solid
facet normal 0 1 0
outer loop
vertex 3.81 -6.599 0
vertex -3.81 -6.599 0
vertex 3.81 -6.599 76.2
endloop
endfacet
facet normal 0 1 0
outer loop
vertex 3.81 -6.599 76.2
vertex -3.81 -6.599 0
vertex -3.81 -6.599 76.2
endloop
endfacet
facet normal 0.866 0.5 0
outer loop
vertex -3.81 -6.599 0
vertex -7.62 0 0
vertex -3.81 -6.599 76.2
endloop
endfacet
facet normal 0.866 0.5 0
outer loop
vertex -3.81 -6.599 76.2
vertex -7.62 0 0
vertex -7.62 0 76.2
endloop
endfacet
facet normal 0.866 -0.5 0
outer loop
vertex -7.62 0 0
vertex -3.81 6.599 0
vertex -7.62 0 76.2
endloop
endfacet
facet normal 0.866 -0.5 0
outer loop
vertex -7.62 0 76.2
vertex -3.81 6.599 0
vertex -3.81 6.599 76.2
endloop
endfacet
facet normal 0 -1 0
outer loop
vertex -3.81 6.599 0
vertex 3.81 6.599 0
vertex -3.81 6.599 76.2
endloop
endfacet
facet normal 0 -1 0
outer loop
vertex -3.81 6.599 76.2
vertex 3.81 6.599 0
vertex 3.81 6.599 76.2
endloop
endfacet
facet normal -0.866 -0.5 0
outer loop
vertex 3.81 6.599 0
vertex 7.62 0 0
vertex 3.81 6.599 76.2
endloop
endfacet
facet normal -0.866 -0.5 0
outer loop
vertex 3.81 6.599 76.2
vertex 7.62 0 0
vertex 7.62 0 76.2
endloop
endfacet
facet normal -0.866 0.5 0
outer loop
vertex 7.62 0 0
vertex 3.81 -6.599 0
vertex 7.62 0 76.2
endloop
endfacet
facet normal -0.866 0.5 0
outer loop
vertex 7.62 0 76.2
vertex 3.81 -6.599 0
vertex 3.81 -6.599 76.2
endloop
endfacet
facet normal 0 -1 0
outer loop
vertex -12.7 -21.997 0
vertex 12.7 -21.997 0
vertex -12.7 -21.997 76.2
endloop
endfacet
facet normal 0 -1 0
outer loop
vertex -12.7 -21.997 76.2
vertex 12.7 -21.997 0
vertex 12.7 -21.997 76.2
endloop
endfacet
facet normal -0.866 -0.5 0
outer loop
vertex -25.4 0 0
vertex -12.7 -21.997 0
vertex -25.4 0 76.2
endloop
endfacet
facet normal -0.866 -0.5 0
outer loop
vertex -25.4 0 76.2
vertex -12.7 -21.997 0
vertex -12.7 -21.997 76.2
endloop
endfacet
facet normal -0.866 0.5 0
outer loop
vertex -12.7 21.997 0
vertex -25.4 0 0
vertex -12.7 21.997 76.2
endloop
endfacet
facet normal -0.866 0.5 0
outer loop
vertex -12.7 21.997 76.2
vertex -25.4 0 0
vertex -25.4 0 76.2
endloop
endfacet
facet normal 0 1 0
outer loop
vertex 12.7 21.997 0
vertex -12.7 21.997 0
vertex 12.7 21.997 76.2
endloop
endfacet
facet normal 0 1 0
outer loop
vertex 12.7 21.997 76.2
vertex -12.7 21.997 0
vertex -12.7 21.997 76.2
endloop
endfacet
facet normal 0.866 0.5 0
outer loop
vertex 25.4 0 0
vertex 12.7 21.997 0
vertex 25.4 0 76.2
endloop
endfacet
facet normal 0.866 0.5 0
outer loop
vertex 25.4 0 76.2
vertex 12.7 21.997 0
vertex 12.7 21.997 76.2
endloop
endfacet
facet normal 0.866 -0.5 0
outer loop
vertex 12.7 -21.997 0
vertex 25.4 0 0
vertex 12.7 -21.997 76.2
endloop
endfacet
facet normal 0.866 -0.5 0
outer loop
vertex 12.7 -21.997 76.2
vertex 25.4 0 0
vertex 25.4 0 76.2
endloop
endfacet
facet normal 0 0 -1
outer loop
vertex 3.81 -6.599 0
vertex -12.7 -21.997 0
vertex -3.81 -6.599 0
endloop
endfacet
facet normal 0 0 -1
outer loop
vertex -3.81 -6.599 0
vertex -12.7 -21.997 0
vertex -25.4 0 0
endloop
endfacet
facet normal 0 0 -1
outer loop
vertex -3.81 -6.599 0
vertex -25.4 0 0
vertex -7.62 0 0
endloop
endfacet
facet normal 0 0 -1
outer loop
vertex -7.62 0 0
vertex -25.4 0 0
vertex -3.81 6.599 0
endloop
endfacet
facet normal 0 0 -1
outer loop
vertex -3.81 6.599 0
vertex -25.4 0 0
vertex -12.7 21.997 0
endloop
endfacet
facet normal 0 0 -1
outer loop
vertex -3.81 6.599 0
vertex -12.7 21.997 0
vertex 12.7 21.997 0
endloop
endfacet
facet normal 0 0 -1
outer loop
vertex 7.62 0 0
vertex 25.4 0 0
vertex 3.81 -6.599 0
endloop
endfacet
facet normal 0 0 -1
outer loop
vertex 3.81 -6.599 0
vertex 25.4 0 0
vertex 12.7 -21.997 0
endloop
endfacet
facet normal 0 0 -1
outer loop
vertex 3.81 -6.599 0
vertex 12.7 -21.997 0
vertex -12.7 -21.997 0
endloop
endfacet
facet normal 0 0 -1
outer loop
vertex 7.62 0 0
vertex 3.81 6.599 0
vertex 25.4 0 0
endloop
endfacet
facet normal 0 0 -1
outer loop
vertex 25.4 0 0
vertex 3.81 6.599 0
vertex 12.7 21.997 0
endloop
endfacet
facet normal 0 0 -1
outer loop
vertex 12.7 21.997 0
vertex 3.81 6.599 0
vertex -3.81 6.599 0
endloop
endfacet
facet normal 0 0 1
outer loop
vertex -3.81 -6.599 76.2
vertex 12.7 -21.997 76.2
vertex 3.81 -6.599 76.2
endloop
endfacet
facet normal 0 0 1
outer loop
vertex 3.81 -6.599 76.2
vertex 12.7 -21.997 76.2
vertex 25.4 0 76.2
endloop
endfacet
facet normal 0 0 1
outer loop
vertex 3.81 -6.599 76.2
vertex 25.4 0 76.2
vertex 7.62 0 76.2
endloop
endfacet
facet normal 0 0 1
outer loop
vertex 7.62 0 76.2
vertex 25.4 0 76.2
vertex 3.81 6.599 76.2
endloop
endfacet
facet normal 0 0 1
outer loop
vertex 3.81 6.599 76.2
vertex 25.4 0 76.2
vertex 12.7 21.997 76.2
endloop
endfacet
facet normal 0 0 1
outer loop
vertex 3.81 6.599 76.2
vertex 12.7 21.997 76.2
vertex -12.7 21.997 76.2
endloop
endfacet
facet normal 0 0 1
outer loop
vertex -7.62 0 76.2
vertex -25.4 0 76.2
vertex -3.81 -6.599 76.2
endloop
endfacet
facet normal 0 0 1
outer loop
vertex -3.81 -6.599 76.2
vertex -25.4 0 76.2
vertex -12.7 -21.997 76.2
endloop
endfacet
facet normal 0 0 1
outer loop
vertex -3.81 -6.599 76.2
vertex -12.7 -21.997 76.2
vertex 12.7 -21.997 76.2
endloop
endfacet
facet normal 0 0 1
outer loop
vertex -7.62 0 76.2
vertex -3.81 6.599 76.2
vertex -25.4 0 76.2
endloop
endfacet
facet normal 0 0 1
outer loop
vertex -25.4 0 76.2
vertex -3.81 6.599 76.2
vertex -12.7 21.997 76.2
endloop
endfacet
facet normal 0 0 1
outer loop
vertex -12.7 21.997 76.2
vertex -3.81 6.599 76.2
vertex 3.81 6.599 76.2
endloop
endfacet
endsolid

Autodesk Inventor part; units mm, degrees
ref_plane "YZ Plane" through (0, 0, 0) normal (1, 0, 0) x (0, 1, 0)
ref_plane "XZ Plane" through (0, 0, 0) normal (0, 1, 0) x (-1, 0, 0)
ref_plane "XY Plane" through (0, 0, 0) normal (0, 0, 1) x (1, 0, 0)
sketch "Sketch2" plane through (0, 0, 0) normal (0, 0, 1) x (1, 0, 0)
  line L0 (7.62, 0) -> (3.81, -6.5991)
  line L1 (3.81, -6.5991) -> (-3.81, -6.5991)
  line L2 (-3.81, -6.5991) -> (-7.62, 0)
  line L3 (-7.62, 0) -> (-3.81, 6.5991)
  line L4 (-3.81, 6.5991) -> (3.81, 6.5991)
  line L5 (3.81, 6.5991) -> (7.62, 0)
  line L6 (25.4, 0) -> (12.7, -21.997)
  line L7 (12.7, -21.997) -> (-12.7, -21.997)
  line L8 (-12.7, -21.997) -> (-25.4, 0)
  line L9 (-25.4, 0) -> (-12.7, 21.997)
  line L10 (-12.7, 21.997) -> (12.7, 21.997)
  line L11 (12.7, 21.997) -> (25.4, 0)
  point P0 (0, 0)
  point P1 (0, 0)
  point P2 (0, 0)
  dimension "d2" = 7.62
  dimension "d3" = 25.4
extrude "Extrusion1" add sketch "Sketch2" along normal blind 76.2
properties part number "HexSpacer"
